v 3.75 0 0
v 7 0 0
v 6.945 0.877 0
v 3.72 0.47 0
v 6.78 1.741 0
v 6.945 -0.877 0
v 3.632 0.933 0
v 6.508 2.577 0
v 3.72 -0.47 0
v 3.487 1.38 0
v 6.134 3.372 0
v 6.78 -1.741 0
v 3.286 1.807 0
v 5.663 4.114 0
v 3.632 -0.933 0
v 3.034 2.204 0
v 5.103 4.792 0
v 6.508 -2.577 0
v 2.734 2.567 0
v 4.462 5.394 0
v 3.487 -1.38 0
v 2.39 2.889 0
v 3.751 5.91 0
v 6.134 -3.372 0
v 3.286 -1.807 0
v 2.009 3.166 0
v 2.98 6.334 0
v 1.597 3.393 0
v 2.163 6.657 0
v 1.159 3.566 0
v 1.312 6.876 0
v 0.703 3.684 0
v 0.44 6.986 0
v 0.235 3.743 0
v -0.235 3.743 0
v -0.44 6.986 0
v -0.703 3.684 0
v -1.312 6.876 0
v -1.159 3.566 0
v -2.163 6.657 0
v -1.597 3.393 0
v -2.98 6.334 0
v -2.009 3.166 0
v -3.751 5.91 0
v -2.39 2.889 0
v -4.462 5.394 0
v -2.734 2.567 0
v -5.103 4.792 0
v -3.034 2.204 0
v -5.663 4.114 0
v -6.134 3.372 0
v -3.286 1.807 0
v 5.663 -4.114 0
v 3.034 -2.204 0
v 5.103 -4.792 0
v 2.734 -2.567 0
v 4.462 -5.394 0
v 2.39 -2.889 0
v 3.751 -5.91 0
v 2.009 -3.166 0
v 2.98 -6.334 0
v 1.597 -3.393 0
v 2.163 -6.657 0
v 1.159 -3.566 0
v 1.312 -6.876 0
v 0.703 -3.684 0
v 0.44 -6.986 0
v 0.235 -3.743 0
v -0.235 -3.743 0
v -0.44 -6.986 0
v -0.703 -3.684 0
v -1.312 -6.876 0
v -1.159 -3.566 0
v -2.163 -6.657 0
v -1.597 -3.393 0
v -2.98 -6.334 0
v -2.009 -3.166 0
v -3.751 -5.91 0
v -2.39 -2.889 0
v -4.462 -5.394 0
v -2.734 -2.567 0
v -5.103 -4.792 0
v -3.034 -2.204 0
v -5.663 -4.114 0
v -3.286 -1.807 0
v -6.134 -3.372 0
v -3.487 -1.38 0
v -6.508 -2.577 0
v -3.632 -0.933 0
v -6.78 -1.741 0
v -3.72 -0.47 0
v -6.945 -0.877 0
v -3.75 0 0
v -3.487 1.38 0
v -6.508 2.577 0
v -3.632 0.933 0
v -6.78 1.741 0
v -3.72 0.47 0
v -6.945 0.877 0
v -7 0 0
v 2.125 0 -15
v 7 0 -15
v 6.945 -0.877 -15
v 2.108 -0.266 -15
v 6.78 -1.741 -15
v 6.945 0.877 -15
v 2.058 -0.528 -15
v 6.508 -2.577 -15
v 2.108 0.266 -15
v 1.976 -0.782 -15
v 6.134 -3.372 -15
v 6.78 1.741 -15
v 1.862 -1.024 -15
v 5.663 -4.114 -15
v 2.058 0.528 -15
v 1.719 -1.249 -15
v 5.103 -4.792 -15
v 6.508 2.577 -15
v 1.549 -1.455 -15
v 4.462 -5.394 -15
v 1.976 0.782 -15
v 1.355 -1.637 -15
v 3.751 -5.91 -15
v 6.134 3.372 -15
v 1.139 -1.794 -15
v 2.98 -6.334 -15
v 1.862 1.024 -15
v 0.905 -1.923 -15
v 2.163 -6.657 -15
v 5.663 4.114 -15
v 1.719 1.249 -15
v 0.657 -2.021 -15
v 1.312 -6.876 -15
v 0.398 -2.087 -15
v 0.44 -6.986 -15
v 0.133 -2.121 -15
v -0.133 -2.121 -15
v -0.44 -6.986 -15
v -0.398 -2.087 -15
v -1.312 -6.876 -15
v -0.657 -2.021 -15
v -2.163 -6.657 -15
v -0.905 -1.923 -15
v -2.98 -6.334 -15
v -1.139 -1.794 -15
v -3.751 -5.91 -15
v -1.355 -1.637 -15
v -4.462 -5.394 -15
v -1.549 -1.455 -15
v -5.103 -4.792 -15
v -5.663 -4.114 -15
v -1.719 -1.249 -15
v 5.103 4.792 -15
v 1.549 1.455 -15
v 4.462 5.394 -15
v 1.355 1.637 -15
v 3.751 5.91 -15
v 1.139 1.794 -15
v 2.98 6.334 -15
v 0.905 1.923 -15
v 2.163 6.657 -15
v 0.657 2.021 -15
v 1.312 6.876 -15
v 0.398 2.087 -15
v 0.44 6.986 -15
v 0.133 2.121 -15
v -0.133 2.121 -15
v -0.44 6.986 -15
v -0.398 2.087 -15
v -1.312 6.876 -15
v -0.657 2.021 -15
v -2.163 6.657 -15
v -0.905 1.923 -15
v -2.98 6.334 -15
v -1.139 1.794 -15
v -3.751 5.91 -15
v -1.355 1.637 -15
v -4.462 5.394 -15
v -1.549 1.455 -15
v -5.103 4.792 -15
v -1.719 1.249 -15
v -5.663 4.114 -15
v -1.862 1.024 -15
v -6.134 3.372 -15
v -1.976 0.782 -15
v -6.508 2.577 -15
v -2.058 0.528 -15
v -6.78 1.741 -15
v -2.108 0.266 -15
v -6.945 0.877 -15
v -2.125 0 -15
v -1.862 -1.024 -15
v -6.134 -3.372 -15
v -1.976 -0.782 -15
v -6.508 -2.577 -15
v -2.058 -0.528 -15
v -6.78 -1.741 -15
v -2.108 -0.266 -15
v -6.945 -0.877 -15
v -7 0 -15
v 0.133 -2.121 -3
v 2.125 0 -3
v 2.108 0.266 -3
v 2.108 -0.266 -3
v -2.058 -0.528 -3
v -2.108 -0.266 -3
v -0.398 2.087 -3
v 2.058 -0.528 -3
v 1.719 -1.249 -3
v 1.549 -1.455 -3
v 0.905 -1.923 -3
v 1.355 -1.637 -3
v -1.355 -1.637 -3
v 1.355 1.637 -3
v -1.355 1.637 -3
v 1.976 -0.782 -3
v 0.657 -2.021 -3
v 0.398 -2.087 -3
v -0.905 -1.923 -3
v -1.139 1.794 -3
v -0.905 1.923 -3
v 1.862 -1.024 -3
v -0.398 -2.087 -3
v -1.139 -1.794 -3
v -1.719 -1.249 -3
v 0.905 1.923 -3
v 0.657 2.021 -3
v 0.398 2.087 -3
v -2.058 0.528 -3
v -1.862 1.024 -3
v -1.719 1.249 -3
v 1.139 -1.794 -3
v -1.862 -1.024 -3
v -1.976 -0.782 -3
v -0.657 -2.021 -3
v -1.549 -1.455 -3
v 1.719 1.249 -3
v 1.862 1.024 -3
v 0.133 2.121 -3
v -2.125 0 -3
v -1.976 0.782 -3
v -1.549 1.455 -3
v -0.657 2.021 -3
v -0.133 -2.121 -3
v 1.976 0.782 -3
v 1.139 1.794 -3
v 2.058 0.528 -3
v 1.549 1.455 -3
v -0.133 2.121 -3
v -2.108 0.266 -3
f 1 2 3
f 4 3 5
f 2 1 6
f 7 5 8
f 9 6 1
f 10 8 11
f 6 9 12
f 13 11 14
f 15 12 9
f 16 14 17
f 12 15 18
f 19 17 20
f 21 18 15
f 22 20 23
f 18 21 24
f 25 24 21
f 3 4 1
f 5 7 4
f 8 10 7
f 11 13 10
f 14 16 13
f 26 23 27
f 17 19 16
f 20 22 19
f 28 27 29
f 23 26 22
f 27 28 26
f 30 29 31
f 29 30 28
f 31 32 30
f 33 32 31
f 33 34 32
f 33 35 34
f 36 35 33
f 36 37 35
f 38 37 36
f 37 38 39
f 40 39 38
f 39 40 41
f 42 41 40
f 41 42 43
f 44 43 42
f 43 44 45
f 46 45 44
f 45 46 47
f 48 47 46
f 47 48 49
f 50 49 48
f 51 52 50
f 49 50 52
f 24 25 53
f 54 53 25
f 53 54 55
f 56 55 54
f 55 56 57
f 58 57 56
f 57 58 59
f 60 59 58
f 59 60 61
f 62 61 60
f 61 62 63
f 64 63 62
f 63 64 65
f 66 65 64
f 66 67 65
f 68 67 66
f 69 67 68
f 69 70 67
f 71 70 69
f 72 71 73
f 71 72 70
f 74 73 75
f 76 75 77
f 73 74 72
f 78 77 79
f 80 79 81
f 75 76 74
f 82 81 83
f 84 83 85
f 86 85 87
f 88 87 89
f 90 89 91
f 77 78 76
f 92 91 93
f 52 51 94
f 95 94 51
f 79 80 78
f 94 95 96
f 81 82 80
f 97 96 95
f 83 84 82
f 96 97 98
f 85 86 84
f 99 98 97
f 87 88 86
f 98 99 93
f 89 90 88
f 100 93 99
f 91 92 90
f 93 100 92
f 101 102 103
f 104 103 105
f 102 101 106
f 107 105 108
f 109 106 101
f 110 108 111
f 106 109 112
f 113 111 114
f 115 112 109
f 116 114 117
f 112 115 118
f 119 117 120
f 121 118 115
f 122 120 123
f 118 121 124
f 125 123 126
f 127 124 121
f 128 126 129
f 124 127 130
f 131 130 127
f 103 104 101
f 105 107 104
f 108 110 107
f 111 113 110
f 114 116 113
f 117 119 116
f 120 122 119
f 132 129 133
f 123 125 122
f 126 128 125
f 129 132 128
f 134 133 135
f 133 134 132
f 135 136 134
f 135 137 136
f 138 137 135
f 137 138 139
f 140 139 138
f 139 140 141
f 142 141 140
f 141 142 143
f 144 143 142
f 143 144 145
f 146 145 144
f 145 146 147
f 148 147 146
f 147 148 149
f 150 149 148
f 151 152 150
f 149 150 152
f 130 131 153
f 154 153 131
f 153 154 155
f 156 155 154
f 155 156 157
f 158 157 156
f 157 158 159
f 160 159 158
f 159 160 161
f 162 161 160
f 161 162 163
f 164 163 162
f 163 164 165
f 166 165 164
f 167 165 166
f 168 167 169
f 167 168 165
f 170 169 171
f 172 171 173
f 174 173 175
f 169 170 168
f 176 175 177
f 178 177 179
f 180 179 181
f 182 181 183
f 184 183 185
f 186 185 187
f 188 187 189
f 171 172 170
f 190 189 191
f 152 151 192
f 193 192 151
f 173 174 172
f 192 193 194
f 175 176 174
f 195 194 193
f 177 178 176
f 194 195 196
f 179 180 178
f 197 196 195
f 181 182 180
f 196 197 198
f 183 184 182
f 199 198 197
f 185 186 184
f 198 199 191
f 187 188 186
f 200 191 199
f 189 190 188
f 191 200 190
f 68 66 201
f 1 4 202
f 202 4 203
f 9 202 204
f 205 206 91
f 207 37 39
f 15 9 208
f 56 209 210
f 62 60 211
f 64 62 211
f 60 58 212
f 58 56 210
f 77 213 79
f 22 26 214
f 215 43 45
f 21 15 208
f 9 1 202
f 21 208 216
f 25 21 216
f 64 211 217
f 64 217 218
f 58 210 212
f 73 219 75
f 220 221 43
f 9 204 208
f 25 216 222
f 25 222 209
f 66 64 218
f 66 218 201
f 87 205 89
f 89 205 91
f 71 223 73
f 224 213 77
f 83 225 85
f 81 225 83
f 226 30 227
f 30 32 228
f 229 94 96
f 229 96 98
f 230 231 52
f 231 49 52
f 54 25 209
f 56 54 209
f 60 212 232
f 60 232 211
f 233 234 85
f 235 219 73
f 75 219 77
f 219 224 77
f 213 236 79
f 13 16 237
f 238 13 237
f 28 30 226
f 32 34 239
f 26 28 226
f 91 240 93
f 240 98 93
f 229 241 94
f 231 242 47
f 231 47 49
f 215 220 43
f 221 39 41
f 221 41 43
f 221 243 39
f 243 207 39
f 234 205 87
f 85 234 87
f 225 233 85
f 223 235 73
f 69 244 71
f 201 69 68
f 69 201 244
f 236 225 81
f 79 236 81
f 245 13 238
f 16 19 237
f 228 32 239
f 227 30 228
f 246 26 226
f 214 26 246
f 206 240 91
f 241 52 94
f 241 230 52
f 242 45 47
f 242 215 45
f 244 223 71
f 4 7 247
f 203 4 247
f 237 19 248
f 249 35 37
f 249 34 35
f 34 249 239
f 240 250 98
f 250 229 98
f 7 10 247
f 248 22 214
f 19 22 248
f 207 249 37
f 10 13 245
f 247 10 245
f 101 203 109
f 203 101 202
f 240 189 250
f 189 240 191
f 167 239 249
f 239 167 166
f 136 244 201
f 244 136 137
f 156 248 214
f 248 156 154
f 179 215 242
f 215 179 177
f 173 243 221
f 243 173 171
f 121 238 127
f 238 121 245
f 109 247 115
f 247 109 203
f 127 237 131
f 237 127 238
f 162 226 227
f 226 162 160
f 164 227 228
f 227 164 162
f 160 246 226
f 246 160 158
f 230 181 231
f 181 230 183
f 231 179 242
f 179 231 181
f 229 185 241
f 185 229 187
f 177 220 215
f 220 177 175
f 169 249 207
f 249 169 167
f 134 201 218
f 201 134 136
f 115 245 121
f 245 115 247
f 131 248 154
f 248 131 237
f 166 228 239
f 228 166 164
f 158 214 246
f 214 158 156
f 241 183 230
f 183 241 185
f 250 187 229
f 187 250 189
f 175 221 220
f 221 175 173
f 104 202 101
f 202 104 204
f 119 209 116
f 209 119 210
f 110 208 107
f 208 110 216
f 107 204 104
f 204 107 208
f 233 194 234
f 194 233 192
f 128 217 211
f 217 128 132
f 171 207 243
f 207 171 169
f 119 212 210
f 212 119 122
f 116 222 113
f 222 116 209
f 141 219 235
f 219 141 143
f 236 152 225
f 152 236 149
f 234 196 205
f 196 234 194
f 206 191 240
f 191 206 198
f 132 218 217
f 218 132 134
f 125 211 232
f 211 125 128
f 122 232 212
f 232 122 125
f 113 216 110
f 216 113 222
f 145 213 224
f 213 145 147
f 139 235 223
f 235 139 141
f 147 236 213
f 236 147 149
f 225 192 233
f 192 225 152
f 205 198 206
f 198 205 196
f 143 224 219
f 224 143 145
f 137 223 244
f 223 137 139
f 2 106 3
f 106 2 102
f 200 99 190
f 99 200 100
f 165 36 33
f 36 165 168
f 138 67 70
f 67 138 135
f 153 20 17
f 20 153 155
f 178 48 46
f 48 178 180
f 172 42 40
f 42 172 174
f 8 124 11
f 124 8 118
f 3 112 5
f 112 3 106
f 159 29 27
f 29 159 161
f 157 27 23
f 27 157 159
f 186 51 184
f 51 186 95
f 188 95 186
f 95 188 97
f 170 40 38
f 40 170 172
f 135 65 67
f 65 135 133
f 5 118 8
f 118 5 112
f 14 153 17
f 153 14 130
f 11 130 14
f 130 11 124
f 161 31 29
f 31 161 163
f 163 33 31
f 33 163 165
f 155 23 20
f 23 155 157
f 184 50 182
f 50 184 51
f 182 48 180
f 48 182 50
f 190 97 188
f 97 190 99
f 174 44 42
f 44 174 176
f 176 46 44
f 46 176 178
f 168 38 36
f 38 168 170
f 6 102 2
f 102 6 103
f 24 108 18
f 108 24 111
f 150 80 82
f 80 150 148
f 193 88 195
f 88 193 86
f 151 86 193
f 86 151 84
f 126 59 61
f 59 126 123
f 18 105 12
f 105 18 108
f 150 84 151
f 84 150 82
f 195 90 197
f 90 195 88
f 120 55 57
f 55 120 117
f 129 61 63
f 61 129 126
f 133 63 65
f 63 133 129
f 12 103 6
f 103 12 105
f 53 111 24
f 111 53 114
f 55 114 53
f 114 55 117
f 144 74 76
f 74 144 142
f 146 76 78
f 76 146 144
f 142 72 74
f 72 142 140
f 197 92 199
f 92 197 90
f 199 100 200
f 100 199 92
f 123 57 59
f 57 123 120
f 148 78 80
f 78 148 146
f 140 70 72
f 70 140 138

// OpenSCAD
$fn = 50;


difference() {
	union() {
		translate(v = [0, 0, -15.0000000000]) {
			cylinder(h = 15, r = 7.0000000000);
		}
	}
	union() {
		translate(v = [0, 0, 0]) {
			rotate(a = [0, 0, 0]) {
				difference() {
					union() {
						#translate(v = [0, 0, -15.0000000000]) {
							cylinder(h = 15, r = 2.0000000000);
						}
						#translate(v = [0, 0, -3]) {
							cylinder(h = 3, r1 = 2.1250000000, r2 = 3.7500000000);
						}
						#translate(v = [0, 0, -15.0000000000]) {
							cylinder(h = 15, r = 2.1250000000);
						}
						#translate(v = [0, 0, -15.0000000000]) {
							cylinder(h = 15, r = 2.0000000000);
						}
					}
					union();
				}
			}
		}
	}
}
